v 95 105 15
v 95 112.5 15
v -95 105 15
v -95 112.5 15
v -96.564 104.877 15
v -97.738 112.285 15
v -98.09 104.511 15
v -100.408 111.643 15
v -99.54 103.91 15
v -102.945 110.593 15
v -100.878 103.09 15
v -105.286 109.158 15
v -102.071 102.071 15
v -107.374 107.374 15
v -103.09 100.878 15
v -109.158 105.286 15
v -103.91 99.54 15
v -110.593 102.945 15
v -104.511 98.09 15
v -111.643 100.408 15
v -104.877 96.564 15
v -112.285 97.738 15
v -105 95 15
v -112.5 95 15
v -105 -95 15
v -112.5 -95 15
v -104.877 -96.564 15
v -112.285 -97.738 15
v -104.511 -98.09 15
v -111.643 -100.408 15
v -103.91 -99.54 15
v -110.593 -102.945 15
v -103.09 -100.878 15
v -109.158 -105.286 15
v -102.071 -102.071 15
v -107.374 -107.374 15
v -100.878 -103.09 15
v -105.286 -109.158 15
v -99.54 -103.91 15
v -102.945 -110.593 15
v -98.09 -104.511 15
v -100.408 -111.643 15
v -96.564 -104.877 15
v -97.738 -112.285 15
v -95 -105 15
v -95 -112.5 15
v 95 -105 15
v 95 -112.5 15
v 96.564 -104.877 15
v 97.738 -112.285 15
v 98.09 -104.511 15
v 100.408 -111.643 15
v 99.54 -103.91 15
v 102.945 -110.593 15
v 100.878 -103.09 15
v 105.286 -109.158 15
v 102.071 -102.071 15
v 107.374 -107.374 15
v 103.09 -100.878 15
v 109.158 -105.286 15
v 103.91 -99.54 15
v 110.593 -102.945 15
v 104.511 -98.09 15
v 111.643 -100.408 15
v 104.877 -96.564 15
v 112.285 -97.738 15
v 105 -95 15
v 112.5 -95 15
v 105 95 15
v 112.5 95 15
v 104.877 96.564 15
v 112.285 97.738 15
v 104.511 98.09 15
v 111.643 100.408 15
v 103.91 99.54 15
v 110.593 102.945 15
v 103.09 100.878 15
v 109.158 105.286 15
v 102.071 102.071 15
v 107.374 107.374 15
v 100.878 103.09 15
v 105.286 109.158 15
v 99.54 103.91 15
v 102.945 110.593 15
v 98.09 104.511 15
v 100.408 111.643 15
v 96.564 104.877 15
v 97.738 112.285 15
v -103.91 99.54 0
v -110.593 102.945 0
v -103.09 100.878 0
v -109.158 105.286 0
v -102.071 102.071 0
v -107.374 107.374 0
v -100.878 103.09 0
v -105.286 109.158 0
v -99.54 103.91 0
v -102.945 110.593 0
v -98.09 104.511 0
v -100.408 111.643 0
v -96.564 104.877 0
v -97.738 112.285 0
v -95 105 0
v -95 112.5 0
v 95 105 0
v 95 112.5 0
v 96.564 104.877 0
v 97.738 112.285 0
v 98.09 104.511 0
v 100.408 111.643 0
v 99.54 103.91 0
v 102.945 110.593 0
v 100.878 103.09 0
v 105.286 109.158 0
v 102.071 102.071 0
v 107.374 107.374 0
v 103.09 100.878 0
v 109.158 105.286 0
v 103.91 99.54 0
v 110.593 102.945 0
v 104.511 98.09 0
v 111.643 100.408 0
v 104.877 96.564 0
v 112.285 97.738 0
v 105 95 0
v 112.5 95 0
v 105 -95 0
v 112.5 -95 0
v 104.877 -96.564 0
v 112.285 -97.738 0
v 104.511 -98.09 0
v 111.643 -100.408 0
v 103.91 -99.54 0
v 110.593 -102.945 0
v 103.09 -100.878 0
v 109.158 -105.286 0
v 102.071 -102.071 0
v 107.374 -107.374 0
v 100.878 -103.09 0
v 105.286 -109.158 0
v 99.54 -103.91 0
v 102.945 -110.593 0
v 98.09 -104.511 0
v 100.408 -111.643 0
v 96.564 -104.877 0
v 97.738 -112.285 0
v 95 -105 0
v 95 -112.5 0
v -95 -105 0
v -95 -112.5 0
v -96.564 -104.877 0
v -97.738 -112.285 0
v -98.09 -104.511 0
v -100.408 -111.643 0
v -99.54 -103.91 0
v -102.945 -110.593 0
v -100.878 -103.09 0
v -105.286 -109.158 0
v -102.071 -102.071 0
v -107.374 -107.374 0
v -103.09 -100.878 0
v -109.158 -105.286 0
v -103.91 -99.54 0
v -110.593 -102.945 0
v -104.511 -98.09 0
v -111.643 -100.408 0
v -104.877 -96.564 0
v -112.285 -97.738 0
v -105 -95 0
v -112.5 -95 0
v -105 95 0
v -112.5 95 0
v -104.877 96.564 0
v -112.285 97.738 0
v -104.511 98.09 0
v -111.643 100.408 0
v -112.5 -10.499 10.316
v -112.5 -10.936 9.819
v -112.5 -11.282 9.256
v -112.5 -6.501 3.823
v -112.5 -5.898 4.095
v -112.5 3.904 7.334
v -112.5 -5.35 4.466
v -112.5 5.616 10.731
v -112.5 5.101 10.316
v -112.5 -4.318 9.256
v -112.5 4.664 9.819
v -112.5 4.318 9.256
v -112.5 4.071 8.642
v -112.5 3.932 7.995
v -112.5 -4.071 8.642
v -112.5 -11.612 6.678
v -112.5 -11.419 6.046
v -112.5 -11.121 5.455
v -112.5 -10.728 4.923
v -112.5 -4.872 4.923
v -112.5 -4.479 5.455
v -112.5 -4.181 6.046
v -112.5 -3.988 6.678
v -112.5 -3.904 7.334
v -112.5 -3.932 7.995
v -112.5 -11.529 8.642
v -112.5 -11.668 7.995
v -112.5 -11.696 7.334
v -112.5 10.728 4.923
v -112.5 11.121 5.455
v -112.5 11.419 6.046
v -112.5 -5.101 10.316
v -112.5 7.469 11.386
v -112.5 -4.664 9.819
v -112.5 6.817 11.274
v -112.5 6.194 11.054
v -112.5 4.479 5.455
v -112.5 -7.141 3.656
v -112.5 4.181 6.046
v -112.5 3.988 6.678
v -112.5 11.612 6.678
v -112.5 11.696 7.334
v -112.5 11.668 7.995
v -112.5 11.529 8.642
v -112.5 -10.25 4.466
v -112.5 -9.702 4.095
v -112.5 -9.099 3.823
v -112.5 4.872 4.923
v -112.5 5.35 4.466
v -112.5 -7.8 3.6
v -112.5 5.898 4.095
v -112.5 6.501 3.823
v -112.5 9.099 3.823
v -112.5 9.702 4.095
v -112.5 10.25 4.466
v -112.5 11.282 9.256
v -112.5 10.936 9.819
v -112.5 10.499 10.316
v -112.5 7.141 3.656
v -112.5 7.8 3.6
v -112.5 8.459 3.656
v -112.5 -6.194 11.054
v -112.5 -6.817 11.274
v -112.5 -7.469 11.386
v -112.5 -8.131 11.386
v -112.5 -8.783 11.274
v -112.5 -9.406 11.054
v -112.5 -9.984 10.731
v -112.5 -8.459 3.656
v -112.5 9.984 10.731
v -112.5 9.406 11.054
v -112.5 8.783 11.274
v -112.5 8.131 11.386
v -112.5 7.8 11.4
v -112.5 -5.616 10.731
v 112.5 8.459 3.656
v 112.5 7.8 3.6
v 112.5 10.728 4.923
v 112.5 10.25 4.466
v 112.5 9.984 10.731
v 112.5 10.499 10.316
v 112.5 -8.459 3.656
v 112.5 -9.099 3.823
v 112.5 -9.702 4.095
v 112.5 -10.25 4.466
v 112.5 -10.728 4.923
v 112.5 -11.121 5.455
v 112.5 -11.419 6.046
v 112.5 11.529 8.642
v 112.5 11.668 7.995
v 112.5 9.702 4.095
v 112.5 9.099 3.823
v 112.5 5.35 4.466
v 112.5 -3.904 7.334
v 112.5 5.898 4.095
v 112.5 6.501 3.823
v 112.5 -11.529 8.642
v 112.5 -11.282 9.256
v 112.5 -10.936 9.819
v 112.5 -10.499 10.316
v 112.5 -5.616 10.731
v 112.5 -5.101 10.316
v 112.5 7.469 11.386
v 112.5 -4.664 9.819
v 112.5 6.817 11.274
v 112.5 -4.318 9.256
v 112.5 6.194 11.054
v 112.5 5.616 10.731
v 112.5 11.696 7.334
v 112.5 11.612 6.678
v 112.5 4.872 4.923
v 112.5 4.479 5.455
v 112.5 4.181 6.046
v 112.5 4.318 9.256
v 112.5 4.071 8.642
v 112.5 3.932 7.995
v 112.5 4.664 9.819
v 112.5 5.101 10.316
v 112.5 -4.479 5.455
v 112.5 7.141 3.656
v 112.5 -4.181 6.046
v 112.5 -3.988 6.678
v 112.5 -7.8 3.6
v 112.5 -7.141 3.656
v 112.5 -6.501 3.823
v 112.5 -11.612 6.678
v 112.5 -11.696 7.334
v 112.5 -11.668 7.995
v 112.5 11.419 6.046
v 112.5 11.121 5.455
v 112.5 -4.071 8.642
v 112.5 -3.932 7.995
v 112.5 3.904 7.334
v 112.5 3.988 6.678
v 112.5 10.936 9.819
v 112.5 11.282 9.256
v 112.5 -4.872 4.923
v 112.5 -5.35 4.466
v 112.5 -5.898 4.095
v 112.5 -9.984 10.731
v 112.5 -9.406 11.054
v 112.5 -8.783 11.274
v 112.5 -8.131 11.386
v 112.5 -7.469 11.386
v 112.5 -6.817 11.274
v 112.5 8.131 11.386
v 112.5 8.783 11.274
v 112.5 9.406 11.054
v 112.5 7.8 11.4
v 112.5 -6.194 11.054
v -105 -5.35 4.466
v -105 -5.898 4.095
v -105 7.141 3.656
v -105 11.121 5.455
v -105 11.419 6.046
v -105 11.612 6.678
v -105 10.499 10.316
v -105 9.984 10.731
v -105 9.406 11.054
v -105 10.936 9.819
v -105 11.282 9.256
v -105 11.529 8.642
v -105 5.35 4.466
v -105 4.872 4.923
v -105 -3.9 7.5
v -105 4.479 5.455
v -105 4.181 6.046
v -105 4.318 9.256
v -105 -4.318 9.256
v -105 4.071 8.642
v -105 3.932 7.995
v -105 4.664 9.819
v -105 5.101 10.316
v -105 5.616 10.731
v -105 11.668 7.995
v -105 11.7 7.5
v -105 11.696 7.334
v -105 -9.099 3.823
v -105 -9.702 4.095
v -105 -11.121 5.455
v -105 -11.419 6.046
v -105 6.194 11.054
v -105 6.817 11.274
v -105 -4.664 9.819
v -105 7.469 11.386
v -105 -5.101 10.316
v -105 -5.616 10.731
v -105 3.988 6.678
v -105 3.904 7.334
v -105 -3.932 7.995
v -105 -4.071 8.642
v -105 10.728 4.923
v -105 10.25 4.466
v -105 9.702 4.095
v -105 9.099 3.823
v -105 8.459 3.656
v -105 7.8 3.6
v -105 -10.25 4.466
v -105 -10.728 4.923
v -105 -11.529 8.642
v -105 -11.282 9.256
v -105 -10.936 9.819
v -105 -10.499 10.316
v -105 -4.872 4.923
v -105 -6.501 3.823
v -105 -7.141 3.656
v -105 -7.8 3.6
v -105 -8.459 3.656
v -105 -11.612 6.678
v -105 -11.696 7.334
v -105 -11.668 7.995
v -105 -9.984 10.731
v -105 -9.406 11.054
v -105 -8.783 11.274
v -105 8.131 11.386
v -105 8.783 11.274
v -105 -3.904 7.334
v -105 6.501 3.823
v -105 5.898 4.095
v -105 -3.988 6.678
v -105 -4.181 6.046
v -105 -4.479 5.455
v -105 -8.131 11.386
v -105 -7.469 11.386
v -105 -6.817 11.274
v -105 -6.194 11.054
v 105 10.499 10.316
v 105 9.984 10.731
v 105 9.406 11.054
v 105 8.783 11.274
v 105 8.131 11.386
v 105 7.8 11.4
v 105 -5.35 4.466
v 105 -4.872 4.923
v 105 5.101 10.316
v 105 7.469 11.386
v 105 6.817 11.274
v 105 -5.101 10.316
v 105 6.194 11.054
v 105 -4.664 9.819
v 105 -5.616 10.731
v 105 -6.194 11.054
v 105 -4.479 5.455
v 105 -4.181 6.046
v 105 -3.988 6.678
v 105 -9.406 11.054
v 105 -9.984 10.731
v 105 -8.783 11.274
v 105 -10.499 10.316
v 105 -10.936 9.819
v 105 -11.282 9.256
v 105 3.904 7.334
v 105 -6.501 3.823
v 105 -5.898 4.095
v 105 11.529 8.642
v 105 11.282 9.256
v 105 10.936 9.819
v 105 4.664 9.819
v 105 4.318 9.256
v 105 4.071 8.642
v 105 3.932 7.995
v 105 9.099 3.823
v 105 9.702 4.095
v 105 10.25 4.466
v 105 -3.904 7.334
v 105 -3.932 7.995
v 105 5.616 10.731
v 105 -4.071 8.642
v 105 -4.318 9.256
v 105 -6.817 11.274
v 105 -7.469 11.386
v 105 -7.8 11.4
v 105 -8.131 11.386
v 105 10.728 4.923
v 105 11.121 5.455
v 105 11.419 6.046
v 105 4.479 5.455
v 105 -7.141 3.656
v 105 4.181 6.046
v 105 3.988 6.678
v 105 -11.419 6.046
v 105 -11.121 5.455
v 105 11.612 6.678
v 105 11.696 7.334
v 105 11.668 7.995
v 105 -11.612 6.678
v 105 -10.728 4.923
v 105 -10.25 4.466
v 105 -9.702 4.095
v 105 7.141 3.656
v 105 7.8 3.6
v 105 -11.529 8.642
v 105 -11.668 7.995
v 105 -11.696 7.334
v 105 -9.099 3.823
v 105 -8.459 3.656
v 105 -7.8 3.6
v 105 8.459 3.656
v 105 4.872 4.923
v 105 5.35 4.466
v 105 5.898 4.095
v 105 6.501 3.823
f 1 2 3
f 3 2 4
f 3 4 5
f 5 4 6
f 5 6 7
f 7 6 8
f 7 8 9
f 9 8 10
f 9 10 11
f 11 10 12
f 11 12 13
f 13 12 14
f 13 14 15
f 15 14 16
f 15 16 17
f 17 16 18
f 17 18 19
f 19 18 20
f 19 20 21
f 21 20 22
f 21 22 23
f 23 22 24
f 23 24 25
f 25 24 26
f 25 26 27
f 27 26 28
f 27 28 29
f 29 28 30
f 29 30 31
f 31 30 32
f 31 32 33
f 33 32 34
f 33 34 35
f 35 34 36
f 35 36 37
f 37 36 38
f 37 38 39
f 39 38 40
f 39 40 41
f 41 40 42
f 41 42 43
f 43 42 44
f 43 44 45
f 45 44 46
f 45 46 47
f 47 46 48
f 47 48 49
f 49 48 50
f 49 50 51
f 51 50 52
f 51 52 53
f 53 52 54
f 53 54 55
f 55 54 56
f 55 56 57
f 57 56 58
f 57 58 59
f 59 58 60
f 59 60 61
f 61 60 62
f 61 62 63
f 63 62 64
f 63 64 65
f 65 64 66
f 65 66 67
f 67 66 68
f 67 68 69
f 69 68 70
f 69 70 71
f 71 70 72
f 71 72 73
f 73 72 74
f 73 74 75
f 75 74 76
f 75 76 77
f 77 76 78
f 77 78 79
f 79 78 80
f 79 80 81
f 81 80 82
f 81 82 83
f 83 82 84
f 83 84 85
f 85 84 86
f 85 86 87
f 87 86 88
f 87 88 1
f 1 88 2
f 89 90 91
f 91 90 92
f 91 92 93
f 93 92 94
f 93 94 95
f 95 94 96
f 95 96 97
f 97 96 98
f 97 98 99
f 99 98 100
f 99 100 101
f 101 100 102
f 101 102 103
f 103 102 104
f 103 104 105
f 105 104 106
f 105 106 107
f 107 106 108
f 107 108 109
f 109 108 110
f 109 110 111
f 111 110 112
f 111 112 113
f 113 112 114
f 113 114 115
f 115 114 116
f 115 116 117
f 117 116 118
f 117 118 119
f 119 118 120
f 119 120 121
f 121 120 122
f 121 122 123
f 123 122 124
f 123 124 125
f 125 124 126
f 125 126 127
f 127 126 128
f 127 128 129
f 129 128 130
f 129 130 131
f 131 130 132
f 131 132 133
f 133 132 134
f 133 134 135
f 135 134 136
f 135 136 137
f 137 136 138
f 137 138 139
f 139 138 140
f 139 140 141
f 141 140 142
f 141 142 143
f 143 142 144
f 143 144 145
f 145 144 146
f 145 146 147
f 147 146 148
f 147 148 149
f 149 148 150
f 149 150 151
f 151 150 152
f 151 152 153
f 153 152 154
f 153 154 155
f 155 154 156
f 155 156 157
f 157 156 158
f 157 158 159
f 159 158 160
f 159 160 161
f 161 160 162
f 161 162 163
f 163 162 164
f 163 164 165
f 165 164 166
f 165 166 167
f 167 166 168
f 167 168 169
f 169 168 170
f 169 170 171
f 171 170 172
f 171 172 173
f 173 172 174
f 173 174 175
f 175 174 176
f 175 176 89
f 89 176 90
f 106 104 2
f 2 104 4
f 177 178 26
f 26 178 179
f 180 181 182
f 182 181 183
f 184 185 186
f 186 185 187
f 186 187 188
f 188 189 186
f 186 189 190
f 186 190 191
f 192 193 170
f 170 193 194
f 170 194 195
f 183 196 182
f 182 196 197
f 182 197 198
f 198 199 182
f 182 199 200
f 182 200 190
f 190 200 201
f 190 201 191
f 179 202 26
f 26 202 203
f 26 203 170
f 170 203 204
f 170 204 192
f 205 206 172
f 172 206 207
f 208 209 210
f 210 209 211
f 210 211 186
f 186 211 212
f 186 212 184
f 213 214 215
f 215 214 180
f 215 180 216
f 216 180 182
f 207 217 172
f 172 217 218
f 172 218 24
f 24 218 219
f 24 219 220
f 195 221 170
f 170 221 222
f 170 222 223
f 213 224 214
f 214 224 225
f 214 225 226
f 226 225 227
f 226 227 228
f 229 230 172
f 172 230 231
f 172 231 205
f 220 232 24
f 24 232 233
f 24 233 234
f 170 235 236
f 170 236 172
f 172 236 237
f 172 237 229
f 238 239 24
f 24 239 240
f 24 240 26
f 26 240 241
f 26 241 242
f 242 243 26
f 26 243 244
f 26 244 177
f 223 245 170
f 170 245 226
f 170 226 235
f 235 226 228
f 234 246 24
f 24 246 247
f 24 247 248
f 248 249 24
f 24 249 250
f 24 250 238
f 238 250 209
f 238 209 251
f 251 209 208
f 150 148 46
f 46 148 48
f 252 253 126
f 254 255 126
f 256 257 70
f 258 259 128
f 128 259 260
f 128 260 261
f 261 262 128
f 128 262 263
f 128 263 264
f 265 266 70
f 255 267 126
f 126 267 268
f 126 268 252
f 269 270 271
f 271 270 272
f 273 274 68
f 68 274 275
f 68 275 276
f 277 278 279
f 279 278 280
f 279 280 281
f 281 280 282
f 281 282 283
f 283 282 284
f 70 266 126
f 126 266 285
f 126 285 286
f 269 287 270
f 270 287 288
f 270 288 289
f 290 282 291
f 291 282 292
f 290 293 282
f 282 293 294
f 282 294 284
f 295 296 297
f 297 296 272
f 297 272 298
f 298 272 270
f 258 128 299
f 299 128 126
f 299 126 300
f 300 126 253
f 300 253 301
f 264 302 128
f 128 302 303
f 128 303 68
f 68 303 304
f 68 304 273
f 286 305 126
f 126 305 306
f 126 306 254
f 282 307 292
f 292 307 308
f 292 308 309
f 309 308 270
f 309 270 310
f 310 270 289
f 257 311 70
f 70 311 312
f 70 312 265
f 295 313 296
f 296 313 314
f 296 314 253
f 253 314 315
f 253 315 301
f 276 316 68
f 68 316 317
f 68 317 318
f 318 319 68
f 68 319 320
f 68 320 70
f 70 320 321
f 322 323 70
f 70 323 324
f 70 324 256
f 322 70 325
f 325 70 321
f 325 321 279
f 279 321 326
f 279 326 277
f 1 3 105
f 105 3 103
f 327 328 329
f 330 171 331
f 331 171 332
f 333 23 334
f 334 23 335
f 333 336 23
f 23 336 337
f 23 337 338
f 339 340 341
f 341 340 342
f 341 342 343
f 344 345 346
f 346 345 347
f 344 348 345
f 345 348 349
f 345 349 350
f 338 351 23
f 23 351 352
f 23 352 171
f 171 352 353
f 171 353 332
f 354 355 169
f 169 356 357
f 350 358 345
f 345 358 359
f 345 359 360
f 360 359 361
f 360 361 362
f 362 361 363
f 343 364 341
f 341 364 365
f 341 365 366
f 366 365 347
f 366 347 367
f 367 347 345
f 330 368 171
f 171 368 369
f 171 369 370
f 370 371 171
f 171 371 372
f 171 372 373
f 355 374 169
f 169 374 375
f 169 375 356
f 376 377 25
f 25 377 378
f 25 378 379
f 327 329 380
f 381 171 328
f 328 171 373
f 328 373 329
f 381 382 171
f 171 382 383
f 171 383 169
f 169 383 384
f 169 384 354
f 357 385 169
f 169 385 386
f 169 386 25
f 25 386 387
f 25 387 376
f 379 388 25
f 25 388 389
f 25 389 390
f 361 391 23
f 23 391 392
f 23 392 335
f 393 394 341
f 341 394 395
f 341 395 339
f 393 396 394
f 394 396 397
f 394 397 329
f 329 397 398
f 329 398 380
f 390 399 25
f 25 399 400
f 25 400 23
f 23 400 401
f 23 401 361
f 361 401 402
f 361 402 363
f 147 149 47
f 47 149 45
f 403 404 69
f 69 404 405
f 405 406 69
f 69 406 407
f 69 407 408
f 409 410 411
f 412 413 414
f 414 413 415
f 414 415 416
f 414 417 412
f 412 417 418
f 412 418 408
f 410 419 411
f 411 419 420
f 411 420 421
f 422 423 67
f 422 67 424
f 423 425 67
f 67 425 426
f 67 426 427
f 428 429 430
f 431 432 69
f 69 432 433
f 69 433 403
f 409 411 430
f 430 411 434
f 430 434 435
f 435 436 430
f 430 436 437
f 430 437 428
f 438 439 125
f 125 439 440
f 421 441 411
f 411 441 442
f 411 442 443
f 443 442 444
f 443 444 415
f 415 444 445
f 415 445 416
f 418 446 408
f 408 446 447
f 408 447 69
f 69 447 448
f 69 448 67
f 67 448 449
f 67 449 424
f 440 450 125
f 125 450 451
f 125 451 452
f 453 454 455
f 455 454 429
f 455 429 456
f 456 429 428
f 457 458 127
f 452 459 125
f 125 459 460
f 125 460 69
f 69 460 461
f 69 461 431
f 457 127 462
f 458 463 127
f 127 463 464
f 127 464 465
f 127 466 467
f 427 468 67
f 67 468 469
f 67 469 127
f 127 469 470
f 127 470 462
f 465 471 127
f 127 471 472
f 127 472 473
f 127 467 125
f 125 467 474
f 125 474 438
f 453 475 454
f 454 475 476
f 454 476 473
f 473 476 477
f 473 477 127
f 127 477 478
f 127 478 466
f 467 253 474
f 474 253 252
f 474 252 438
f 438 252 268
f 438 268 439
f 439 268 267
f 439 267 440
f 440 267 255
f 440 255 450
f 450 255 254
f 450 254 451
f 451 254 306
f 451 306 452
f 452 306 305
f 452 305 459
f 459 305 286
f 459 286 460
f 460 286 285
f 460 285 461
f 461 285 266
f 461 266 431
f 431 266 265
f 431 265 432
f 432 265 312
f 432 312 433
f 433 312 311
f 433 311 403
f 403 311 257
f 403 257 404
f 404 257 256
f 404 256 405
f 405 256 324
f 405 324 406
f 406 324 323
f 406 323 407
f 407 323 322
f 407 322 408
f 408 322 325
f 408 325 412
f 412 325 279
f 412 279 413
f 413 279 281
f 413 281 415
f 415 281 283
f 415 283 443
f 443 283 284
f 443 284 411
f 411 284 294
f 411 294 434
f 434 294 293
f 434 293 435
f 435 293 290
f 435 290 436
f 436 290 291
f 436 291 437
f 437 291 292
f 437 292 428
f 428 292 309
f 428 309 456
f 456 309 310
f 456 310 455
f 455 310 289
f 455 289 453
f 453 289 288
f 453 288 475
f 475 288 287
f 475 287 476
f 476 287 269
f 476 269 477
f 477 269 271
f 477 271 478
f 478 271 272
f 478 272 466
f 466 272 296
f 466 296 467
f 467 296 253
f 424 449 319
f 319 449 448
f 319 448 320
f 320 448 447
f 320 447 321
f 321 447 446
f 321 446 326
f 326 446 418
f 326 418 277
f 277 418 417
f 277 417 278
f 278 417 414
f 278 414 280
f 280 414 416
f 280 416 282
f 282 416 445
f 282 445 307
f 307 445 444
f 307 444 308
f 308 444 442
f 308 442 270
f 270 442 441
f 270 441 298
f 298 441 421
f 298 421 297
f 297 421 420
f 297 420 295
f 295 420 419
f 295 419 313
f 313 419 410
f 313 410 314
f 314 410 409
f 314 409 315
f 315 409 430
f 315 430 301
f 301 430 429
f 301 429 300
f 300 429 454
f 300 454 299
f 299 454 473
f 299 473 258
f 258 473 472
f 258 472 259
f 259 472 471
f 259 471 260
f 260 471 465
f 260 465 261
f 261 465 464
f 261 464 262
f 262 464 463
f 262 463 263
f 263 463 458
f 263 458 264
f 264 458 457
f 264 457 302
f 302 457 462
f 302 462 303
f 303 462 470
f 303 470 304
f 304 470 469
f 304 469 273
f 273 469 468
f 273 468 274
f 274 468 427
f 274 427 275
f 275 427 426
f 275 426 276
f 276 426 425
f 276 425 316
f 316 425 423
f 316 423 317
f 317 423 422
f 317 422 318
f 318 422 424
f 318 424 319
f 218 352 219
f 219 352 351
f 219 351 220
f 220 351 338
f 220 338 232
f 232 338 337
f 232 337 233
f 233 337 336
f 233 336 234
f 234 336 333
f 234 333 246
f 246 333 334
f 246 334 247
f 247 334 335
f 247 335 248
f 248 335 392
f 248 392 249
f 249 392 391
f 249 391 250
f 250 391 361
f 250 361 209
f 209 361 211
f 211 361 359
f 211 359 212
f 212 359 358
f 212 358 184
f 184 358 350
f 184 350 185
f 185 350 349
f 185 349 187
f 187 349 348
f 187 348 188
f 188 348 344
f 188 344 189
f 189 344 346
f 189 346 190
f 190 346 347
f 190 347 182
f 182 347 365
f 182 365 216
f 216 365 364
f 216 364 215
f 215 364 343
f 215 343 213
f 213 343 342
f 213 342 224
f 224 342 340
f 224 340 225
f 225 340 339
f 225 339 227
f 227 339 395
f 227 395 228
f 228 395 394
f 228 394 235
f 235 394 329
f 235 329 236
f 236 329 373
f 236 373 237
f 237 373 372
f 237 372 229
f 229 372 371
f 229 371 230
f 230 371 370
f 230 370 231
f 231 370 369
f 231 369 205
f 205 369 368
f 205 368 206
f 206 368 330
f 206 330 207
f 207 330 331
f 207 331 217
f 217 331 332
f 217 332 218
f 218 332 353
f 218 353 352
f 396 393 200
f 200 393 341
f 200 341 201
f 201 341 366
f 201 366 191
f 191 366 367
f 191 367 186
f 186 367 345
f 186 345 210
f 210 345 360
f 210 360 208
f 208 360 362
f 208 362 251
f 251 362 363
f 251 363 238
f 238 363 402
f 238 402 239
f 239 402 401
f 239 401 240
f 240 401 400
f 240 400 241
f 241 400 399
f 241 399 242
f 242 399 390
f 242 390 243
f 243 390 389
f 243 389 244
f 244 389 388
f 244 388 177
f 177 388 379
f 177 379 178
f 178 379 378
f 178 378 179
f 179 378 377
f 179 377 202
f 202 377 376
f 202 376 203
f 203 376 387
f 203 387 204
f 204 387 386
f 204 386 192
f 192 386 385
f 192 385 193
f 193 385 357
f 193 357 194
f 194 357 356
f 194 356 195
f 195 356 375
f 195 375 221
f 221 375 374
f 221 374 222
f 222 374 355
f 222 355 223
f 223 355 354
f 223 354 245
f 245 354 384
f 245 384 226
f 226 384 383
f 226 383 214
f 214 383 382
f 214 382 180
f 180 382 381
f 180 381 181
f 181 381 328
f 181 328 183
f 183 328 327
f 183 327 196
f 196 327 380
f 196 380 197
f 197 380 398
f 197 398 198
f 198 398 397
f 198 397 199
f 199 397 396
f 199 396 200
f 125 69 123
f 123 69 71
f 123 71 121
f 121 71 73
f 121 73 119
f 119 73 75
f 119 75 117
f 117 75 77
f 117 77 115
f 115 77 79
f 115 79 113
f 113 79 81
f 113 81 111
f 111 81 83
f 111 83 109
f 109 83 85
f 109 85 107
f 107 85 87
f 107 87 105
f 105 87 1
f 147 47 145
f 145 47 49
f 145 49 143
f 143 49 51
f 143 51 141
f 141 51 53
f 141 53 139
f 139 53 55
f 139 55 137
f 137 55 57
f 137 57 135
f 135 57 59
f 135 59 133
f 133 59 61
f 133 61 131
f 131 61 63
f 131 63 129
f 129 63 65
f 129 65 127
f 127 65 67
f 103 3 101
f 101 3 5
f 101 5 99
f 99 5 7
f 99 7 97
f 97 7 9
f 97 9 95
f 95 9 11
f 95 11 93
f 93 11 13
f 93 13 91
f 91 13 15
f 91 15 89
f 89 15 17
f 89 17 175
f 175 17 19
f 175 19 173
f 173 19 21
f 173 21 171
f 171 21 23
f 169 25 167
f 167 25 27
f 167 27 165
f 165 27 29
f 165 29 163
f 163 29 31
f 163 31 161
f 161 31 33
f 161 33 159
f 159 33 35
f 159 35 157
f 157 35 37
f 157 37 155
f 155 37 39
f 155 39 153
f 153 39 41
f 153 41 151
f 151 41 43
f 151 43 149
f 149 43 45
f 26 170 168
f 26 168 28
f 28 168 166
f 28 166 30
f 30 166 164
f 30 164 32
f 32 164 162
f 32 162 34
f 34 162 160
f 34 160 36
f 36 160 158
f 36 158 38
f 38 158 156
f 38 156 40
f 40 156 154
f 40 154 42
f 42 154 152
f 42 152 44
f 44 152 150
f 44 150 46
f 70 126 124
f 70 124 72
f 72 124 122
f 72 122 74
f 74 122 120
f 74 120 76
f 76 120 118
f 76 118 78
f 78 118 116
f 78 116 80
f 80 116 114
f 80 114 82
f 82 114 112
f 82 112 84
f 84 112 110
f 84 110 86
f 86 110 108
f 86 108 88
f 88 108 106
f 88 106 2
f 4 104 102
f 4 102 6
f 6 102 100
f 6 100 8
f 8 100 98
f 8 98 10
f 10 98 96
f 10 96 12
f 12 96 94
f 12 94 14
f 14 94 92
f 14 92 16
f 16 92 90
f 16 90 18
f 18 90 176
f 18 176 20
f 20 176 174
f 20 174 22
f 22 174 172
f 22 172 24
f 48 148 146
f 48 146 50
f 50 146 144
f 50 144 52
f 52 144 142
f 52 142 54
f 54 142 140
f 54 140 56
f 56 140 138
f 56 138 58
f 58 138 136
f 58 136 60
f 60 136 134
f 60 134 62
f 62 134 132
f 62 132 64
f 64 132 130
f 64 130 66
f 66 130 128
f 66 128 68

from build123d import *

# Parameters (mm, degrees)
SKETCH1_W           = 225
SKETCH1_H           = 225
SKETCH1_W_2         = 210
SKETCH1_H_2         = 210
BOSS_EXTRUDE1_DEPTH = 15
SKETCH2_R           = 3.9
CUT_EXTRUDE1_DEPTH  = 253.004464246
FILLET1_R           = 10
FILLET2_R           = 17.5


with BuildPart() as part:
    # Sketch1 → Boss-Extrude1 (new body)
    with BuildSketch(Plane(origin=(0, 0, 0), x_dir=(0, 1, 0), z_dir=(0, 0, 1))):
        Rectangle(SKETCH1_W, SKETCH1_H)
        Rectangle(SKETCH1_W_2, SKETCH1_H_2, mode=Mode.SUBTRACT)
    extrude(amount=BOSS_EXTRUDE1_DEPTH)

    # Sketch2 → Cut-Extrude1 (cut, through all)
    with BuildSketch(Plane.YZ.offset(112.5)):
        with Locations(Location((-7.8, 7.5, 0), (0, 0, 270))):
            Circle(SKETCH2_R)
        with Locations(Location((7.8, 7.5, 0), (0, 0, 90))):
            Circle(SKETCH2_R)
    extrude(amount=-CUT_EXTRUDE1_DEPTH, mode=Mode.SUBTRACT)

    # Fillet1
    fillet1_edges = [part.edges().sort_by_distance(p)[0] for p in [
        (105, 105, 7.5),
        (-105, 105, 7.5),
        (-105, -105, 7.5),
        (105, -105, 7.5),
    ]]
    fillet(fillet1_edges, radius=FILLET1_R)

    # Fillet2
    fillet2_edges = [part.edges().sort_by_distance(p)[0] for p in [
        (112.5, 112.5, 7.5),
        (112.5, -112.5, 7.5),
        (-112.5, -112.5, 7.5),
        (-112.5, 112.5, 7.5),
    ]]
    fillet(fillet2_edges, radius=FILLET2_R)


solid = part.part
